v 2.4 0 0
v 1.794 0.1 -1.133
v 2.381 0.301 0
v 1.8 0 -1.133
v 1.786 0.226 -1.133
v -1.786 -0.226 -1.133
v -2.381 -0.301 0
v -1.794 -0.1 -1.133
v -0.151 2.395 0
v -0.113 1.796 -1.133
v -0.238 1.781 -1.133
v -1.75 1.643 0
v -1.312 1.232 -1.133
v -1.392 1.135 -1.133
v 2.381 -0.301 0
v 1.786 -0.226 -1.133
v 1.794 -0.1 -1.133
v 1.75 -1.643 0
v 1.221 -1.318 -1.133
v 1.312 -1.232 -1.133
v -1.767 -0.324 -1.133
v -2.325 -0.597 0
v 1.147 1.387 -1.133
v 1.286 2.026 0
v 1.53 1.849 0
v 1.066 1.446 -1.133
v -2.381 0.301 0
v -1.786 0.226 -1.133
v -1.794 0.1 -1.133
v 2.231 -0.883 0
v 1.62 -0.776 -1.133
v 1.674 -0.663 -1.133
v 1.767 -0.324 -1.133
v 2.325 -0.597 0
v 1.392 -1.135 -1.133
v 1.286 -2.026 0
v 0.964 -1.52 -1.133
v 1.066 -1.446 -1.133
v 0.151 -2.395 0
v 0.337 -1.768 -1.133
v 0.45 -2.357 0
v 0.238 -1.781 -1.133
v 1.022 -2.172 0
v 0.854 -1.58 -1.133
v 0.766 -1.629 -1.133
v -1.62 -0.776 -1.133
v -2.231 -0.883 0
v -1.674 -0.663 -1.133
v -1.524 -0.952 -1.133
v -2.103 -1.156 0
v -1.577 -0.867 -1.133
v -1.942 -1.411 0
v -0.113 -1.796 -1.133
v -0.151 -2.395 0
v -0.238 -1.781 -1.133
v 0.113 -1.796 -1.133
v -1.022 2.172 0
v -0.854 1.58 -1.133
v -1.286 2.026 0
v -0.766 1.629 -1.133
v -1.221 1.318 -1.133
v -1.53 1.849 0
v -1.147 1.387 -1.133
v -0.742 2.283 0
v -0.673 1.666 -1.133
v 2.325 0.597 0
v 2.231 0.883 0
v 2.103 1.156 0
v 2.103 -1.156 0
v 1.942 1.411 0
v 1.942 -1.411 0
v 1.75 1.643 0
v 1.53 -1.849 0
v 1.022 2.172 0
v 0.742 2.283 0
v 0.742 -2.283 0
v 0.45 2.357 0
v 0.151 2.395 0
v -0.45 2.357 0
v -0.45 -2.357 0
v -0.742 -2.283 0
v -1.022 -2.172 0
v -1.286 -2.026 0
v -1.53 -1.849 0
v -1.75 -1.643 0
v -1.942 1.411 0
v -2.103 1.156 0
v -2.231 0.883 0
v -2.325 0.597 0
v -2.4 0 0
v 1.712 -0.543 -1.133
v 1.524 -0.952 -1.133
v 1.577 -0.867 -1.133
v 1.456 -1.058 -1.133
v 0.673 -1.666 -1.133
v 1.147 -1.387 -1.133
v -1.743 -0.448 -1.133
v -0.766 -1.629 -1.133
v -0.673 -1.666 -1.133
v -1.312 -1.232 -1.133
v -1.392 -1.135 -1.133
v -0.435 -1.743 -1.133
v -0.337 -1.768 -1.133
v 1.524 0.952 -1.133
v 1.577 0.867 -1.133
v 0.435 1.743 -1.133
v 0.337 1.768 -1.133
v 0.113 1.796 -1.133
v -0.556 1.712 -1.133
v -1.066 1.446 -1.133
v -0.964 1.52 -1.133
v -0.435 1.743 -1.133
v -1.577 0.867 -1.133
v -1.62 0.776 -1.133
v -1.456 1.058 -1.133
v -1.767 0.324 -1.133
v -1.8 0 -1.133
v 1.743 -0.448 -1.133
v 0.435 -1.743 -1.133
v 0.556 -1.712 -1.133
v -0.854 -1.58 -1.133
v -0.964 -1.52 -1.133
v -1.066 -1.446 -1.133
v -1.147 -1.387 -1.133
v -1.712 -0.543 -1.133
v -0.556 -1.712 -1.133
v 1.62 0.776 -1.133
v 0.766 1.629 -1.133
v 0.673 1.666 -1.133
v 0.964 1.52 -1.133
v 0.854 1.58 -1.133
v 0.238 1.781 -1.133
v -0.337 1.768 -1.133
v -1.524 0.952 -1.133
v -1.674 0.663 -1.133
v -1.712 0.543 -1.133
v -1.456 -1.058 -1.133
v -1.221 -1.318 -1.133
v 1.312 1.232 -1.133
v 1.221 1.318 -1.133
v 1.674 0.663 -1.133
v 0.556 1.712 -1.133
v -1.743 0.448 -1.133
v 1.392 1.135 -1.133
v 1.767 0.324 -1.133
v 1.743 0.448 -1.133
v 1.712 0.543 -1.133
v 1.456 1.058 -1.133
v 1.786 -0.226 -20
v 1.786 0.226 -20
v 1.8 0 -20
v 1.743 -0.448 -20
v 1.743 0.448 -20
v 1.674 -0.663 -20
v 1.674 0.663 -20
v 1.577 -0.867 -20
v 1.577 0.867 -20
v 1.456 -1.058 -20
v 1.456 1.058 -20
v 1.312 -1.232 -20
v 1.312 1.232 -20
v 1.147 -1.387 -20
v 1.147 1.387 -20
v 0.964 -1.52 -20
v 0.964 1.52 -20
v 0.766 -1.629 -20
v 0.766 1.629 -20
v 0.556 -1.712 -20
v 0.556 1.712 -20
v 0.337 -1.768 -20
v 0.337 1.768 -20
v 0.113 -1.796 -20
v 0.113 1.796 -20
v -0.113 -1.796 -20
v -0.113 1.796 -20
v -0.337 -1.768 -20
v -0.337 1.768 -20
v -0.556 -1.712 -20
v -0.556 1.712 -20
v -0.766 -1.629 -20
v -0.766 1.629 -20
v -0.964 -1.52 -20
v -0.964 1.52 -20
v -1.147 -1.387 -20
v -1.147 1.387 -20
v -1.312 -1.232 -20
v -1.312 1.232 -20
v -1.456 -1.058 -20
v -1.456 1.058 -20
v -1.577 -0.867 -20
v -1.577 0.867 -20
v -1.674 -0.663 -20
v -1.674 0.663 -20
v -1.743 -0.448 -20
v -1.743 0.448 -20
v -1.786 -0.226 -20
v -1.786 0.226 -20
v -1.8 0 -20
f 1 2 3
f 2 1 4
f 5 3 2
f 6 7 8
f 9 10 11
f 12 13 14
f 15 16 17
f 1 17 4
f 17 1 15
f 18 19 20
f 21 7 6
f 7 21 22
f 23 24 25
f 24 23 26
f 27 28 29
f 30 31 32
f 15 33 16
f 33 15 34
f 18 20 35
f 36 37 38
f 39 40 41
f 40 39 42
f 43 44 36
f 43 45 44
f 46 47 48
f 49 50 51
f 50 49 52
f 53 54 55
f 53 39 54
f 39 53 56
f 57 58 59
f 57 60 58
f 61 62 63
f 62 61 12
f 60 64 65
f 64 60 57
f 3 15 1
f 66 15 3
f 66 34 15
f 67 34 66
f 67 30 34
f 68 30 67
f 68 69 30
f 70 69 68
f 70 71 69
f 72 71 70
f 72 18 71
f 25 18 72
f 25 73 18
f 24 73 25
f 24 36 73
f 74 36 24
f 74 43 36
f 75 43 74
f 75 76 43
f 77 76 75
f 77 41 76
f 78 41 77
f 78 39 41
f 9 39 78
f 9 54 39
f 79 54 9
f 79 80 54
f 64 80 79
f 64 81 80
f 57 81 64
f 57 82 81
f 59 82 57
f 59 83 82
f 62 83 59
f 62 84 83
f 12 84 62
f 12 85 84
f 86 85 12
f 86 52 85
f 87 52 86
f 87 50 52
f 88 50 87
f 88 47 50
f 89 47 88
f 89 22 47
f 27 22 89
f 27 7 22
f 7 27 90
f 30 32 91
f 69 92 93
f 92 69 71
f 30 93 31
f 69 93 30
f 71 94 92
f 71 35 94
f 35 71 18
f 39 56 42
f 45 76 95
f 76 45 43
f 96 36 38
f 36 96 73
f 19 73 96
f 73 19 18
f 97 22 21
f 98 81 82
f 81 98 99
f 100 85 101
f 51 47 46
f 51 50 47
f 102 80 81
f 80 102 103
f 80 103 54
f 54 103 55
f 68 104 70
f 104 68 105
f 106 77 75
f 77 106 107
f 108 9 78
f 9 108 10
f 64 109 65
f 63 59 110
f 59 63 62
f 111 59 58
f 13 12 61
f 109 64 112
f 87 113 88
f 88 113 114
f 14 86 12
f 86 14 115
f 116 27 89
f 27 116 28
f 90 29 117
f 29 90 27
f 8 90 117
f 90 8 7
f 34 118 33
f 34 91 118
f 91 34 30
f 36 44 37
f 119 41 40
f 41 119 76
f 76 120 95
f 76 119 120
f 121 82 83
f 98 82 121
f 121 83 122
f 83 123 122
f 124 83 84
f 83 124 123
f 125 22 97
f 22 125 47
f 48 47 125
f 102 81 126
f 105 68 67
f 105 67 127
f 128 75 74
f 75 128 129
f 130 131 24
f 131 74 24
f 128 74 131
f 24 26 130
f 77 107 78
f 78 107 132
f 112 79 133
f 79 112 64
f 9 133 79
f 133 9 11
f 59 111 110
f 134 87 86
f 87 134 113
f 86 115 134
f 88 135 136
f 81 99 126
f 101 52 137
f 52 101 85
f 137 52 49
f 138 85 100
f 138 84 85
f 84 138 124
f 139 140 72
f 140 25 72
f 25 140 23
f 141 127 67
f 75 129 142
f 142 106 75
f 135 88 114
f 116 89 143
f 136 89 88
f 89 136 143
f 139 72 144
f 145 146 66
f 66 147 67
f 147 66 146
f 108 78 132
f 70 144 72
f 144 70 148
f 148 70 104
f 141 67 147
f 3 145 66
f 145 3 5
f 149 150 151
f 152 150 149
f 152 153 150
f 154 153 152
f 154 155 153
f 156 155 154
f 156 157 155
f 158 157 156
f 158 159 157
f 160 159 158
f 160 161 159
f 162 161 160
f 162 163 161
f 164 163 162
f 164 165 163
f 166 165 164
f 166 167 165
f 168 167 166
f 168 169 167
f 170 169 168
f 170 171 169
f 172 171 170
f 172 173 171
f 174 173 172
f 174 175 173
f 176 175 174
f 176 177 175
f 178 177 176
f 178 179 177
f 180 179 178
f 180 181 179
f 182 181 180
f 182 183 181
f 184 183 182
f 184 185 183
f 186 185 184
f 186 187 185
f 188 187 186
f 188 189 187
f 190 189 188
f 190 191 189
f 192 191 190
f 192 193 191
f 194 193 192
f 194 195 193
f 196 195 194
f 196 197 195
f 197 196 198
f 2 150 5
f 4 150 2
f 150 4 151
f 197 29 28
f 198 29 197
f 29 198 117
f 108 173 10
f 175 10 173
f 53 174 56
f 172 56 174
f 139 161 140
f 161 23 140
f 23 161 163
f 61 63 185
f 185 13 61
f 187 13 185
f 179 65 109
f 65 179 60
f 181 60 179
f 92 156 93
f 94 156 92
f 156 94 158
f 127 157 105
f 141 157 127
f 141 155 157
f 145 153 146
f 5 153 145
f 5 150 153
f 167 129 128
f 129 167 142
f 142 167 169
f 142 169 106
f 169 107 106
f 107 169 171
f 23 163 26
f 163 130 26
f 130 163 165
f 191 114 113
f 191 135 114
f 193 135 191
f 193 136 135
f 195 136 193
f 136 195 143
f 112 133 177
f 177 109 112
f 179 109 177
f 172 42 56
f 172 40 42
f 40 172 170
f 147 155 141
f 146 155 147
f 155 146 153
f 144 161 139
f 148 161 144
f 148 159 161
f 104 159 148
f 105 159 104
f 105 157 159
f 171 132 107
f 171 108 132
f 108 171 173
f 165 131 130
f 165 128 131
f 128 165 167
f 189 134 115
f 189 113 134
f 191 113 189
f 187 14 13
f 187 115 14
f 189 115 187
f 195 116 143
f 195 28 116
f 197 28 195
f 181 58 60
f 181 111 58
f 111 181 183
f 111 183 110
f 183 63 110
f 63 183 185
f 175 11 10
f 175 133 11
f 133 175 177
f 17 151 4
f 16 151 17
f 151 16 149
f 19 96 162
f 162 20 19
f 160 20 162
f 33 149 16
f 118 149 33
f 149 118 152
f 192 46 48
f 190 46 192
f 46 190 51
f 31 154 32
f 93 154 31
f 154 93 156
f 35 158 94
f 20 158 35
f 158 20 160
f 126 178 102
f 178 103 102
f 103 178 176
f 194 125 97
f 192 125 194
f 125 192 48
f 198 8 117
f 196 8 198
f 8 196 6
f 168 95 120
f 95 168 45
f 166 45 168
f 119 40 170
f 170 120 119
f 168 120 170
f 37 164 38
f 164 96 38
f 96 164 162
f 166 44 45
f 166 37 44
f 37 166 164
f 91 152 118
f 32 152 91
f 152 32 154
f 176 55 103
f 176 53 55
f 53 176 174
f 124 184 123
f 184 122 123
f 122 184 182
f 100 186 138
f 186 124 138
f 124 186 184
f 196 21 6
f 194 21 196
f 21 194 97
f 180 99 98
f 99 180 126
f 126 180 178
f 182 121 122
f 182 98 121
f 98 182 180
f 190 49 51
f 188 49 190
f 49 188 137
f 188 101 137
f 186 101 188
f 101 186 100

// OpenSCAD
$fn = 50;


difference() {
	union() {
		translate(v = [0, 0, 0]) {
			rotate(a = [0, 0, 0]) {
				difference() {
					union() {
						translate(v = [0, 0, -1.7000000000]) {
							cylinder(h = 1.7000000000, r1 = 1.5000000000, r2 = 2.4000000000);
						}
						translate(v = [0, 0, -20.0000000000]) {
							cylinder(h = 20, r = 1.5000000000);
						}
						translate(v = [0, 0, -20.0000000000]) {
							cylinder(h = 20, r = 1.8000000000);
						}
						translate(v = [0, 0, -20.0000000000]) {
							cylinder(h = 20, r = 1.5000000000);
						}
					}
					union();
				}
			}
		}
	}
	union();
}
